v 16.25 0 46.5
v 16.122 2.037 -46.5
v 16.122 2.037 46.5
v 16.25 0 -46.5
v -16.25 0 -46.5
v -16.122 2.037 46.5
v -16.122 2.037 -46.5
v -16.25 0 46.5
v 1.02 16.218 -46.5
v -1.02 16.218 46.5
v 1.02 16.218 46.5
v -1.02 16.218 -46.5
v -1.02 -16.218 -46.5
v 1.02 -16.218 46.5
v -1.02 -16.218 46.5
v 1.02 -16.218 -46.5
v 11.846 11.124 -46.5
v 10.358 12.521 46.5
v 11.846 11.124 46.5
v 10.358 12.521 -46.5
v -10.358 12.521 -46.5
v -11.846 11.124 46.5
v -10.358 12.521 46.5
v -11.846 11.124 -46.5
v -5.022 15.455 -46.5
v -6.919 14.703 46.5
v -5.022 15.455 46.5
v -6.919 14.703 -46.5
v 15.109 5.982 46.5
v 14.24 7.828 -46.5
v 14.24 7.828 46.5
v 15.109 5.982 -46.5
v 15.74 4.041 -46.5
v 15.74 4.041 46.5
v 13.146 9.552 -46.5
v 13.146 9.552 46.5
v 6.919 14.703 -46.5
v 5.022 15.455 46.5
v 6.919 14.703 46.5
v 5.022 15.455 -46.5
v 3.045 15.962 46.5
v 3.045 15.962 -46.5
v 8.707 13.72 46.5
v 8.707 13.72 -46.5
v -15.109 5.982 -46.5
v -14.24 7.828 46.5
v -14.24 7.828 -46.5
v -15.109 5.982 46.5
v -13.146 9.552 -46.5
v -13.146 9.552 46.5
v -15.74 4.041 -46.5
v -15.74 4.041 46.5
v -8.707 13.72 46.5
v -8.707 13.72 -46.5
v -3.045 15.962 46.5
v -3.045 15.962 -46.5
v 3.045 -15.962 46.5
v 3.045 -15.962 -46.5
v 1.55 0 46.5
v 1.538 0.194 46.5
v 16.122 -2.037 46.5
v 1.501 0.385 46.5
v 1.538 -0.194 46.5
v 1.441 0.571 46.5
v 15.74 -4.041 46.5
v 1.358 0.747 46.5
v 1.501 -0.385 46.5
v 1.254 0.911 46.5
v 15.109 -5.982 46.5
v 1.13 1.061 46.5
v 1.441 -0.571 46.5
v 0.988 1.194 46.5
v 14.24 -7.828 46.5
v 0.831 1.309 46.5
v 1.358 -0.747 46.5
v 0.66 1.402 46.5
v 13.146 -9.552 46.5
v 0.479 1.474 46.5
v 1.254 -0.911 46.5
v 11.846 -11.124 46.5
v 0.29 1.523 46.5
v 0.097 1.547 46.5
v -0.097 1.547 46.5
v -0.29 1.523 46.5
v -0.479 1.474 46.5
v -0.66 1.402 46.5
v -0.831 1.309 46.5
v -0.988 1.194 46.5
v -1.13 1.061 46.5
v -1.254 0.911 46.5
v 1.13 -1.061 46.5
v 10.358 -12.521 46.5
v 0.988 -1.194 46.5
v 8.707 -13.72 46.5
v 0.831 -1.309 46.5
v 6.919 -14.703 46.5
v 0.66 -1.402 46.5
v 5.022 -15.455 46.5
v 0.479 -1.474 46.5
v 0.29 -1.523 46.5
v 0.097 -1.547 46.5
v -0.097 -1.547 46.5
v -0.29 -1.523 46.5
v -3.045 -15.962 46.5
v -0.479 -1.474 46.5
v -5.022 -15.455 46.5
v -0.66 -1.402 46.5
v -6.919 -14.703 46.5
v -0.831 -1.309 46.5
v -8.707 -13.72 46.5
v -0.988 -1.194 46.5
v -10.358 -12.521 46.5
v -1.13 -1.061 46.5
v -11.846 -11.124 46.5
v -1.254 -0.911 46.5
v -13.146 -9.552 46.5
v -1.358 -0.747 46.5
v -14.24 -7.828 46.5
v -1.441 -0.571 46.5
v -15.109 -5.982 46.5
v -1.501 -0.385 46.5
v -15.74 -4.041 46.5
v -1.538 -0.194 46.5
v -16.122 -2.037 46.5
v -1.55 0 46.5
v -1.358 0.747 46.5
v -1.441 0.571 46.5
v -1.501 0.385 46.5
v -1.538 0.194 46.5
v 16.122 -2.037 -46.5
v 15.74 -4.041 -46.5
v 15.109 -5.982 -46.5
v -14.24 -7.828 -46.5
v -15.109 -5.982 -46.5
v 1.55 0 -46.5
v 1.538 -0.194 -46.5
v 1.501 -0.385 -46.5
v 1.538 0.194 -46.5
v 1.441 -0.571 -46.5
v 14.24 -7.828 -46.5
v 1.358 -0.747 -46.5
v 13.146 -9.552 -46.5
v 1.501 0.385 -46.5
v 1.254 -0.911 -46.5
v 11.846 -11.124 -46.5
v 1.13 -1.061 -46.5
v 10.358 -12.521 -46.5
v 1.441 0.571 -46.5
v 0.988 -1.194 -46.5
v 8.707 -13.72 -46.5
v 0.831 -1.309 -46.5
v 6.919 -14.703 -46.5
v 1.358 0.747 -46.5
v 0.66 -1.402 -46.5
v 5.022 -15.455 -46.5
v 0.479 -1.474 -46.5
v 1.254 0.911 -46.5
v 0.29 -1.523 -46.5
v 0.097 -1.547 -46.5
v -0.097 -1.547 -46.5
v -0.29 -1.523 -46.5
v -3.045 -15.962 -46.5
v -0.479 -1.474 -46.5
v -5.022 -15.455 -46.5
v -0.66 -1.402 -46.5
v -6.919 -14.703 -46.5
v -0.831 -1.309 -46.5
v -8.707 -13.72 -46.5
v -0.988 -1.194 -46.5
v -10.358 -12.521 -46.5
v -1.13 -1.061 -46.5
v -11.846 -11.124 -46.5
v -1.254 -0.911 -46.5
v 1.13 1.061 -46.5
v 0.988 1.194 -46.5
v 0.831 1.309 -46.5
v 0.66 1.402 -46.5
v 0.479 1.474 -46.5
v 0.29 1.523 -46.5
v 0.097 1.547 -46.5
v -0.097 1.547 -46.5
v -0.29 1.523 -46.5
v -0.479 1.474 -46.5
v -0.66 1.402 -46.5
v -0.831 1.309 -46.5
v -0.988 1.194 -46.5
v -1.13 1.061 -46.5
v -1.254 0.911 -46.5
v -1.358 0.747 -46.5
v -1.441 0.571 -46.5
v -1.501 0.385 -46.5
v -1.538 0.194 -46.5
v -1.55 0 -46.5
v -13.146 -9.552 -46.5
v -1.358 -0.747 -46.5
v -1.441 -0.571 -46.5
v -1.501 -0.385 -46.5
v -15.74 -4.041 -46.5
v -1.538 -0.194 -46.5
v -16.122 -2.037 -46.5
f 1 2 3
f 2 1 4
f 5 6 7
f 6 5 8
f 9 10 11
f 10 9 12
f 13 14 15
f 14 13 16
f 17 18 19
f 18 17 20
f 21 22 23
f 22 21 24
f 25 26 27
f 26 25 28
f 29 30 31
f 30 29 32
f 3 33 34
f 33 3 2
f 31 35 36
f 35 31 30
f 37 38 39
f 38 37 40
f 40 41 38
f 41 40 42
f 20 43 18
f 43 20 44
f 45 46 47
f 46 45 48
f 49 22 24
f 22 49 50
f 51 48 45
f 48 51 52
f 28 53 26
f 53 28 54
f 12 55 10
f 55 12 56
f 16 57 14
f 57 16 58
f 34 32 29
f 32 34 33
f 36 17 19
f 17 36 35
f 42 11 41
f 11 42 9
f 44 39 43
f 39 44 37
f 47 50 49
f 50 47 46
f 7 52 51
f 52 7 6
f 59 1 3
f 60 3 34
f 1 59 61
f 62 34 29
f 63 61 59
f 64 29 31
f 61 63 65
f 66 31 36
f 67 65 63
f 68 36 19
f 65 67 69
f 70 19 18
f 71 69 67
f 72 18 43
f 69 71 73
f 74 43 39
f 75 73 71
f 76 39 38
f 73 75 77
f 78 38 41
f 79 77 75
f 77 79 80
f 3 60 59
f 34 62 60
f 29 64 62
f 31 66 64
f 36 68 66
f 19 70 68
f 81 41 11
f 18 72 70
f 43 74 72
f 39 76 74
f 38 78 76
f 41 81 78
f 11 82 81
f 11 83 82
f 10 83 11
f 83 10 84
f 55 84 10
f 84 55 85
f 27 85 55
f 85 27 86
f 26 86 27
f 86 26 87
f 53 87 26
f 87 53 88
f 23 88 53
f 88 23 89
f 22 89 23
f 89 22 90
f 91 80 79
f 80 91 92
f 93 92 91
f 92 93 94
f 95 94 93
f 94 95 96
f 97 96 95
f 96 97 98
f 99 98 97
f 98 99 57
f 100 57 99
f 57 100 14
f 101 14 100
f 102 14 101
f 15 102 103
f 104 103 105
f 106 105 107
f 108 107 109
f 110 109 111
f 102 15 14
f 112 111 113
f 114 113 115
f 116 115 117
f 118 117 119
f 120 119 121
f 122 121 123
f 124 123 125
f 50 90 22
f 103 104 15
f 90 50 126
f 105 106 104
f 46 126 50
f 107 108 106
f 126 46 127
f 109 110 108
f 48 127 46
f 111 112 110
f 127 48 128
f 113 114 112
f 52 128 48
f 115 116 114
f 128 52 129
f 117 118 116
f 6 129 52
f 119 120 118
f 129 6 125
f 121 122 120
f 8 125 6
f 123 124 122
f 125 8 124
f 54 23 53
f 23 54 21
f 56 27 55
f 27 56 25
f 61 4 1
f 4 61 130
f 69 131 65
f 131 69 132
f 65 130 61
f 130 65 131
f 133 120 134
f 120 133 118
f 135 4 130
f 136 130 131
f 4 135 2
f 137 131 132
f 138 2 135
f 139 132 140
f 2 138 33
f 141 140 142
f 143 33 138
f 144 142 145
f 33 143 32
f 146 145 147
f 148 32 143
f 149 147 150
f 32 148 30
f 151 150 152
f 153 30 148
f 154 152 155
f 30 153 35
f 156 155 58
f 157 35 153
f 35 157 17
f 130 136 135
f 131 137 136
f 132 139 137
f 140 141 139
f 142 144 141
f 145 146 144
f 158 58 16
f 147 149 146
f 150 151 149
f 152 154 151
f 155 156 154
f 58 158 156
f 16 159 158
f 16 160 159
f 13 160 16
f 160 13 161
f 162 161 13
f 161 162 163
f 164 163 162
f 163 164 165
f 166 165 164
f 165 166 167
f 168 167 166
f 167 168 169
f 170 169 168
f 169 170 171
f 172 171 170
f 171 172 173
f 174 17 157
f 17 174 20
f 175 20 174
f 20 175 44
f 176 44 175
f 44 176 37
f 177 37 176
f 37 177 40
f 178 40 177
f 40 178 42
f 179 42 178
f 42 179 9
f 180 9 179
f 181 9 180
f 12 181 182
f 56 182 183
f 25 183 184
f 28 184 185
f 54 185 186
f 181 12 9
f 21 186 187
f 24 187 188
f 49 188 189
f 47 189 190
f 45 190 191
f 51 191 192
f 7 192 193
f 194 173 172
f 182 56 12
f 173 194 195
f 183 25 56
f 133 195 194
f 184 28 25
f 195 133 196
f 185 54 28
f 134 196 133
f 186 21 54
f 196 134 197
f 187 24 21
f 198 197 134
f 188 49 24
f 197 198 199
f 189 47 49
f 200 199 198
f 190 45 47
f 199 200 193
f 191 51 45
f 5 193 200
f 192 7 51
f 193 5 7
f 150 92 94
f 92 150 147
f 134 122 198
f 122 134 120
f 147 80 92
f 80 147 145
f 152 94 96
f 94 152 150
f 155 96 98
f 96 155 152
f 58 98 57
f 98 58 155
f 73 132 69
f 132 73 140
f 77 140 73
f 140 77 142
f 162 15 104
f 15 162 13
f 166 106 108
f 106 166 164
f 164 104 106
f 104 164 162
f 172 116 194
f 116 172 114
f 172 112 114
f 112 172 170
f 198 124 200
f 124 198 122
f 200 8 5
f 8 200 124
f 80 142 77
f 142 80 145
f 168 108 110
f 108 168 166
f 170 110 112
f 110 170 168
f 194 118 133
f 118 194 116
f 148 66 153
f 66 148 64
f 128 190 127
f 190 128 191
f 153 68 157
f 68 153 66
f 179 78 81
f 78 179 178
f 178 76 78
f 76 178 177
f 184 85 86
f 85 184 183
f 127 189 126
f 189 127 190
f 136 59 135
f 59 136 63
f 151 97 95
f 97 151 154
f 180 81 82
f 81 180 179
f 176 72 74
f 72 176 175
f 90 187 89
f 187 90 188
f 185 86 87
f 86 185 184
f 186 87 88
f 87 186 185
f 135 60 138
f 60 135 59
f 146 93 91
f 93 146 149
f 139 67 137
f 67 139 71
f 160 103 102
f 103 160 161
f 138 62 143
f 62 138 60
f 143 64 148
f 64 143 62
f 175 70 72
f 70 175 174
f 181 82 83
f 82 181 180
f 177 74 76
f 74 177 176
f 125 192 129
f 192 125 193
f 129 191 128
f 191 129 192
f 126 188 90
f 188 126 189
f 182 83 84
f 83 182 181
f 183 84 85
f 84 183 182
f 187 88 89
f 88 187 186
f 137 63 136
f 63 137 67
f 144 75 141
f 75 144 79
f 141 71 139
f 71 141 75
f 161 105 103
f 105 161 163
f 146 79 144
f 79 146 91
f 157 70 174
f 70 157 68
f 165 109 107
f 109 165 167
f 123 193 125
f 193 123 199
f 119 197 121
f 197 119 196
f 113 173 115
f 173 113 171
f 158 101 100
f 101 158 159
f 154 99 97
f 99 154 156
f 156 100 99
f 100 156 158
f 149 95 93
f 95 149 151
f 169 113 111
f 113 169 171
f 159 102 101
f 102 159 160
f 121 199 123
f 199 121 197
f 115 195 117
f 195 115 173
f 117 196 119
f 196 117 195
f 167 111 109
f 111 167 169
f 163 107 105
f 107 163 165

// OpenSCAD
$fn = 50;


difference() {
	union() {
		translate(v = [0, 0, -46.5000000000]) {
			cylinder(h = 93, r = 16.2500000000);
		}
	}
	union() {
		translate(v = [0, 0, -100.0000000000]) {
			cylinder(h = 200, r = 1.5500000000);
		}
	}
}
